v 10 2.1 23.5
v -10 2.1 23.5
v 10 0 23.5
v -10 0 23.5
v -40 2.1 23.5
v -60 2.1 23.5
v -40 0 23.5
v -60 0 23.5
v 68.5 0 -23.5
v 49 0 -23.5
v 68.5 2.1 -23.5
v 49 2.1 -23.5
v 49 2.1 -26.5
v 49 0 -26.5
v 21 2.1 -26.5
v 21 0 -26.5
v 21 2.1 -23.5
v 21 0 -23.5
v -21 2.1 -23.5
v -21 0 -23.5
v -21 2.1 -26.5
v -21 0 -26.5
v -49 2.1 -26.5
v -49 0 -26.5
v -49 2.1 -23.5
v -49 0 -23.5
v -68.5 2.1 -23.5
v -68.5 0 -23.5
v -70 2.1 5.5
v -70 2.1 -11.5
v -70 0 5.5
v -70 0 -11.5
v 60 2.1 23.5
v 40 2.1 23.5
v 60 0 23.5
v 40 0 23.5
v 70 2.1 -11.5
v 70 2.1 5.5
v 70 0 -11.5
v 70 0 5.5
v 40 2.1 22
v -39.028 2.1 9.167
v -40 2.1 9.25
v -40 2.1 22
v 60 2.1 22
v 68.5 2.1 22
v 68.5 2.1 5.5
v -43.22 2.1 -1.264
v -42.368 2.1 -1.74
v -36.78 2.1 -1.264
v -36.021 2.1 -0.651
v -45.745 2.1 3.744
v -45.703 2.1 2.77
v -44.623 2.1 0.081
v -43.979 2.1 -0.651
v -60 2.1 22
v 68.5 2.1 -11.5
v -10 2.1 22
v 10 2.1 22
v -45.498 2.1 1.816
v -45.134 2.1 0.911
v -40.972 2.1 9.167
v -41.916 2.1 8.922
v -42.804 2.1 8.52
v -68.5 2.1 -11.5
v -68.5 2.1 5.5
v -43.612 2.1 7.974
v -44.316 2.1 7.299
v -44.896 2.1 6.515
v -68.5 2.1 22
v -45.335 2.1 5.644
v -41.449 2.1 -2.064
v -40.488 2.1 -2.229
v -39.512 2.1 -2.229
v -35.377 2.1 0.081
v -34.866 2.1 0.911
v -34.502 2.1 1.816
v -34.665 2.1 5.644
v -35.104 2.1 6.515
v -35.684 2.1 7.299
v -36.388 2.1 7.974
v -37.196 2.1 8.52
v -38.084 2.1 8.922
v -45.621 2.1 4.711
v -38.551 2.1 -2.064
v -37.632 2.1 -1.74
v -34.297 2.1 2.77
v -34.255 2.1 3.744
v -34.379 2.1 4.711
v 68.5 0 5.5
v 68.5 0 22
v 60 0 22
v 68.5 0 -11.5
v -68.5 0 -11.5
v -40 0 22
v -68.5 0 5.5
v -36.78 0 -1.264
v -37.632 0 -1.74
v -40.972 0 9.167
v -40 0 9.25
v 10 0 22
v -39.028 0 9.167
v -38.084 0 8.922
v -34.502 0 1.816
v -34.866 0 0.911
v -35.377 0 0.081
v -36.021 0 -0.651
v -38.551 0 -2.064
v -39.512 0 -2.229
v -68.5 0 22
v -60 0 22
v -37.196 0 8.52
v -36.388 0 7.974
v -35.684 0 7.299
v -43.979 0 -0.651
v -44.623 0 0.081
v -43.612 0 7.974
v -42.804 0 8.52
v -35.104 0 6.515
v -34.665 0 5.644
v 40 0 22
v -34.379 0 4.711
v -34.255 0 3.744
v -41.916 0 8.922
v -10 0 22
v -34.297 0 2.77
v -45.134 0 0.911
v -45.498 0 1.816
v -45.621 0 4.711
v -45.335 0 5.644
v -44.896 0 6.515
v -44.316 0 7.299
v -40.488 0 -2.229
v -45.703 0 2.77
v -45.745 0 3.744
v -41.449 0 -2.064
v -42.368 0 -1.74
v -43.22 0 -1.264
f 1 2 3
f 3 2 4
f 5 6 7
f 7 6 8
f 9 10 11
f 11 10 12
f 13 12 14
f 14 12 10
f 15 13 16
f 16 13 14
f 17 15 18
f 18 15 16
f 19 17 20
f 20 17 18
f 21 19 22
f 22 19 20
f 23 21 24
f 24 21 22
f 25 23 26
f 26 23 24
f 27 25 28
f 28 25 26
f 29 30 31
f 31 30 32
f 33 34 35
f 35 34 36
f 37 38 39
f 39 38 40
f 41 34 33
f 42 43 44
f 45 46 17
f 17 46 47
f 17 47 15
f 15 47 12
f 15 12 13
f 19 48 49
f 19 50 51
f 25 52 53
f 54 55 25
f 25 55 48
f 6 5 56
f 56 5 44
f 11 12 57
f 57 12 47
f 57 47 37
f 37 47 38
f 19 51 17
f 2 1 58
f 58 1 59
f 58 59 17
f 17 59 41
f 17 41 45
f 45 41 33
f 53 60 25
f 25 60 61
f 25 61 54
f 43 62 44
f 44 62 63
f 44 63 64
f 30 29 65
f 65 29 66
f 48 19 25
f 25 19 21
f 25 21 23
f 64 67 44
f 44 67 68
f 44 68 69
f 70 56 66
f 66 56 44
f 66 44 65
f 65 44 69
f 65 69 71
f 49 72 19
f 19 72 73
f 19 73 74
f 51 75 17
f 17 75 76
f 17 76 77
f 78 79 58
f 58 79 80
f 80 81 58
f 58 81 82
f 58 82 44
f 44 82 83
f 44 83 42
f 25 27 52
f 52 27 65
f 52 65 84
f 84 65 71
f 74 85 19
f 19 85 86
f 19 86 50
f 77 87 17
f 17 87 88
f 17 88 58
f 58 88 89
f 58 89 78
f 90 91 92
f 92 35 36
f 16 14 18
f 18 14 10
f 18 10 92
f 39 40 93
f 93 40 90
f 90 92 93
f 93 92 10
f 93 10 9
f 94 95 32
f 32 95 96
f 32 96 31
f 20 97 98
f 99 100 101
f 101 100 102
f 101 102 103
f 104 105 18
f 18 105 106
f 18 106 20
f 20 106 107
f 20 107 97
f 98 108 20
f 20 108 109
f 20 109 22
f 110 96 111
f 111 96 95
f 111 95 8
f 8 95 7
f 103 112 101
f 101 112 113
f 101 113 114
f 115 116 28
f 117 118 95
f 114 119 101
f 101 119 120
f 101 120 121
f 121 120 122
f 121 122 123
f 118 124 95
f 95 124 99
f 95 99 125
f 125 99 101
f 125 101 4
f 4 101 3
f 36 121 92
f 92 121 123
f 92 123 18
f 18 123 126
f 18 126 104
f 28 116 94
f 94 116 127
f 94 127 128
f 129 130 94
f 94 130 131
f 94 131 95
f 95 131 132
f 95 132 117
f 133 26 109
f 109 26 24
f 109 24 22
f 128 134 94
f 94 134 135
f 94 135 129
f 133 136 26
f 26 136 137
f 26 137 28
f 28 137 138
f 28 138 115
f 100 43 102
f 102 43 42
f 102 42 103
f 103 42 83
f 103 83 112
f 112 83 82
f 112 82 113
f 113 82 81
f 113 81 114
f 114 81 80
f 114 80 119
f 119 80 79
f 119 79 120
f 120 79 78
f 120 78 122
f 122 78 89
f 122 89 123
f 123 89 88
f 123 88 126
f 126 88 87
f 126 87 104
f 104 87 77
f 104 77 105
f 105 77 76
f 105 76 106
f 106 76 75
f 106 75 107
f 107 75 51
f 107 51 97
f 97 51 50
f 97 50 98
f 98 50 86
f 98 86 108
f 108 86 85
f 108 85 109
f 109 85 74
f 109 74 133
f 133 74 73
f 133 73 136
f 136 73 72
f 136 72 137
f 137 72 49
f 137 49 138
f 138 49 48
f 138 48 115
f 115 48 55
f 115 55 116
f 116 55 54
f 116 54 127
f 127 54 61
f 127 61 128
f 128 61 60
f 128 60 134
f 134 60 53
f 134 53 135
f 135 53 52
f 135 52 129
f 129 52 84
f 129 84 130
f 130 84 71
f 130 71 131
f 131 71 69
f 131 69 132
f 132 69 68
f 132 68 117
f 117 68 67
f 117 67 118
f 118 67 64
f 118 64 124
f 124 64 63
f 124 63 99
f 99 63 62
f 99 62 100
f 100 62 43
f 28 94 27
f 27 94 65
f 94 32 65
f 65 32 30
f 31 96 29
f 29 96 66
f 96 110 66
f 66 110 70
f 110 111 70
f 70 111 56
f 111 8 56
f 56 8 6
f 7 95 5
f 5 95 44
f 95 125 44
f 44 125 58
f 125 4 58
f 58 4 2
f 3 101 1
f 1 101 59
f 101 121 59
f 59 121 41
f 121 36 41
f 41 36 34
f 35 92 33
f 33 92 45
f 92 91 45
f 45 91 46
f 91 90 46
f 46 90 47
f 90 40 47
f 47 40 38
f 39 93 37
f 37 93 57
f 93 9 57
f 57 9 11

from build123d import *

# Parameters (mm, degrees)
BOSS_EXTRUDE1_DEPTH = 2.1
SKETCH3_R           = 5.75
CUT_EXTRUDE1_DEPTH  = 75.87763351
SKETCH4_W           = 1.5
SKETCH4_H           = 12
SKETCH4_W_2         = 30
SKETCH4_H_2         = 1.5
CUT_EXTRUDE2_DEPTH  = 75.87763351


with BuildPart() as part:
    # Sketch1 → Boss-Extrude1 (new body)
    with BuildSketch(Plane(origin=(0, 0, 0), x_dir=(1, 0, 0), z_dir=(0, 1, 0))):
        Polygon((-70, 23.5), (-49, 23.5), (-49, 26.5), (-21, 26.5), (-21, 23.5), (21, 23.5), (21, 26.5), (49, 26.5), (49, 23.5), (70, 23.5), (70, -23.5), (-70, -23.5), align=None)
    extrude(amount=BOSS_EXTRUDE1_DEPTH)

    # Sketch3 → Cut-Extrude1 (cut, through all)
    with BuildSketch(Plane(origin=(0, 2.1, 0), x_dir=(1, 0, 0), z_dir=(0, 1, 0))):
        with Locations(Location((-40, -3.5, 0), (0, 0, 270))):
            Circle(SKETCH3_R)
    extrude(amount=-CUT_EXTRUDE1_DEPTH, mode=Mode.SUBTRACT)

    # Sketch4 → Cut-Extrude2 (cut, through all)
    with BuildSketch(Plane(origin=(0, 2.1, 0), x_dir=(1, 0, 0), z_dir=(0, 1, 0))):
        with Locations((-69.25, 17.5)):
            Rectangle(SKETCH4_W, SKETCH4_H)
        Polygon((-70, -5.5), (-70, -23.5), (-60, -23.5), (-60, -22), (-68.5, -22), (-68.5, -5.5), align=None)
        with Locations((-25, -22.75)):
            Rectangle(SKETCH4_W_2, SKETCH4_H_2)
        with Locations((25, -22.75)):
            Rectangle(SKETCH4_W_2, SKETCH4_H_2)
        Polygon((60, -23.5), (70, -23.5), (70, -5.5), (68.5, -5.5), (68.5, -22), (60, -22), align=None)
        with Locations((69.25, 17.5)):
            Rectangle(SKETCH4_W, SKETCH4_H)
    extrude(amount=-CUT_EXTRUDE2_DEPTH, mode=Mode.SUBTRACT)


solid = part.part
